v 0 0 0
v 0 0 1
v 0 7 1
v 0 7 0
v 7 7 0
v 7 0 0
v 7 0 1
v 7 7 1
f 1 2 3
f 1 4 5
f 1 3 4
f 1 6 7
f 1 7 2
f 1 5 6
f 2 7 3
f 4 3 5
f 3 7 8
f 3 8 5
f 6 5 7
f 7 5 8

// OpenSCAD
/* Warning, this is a very basic generator with a lot of approximation 
input data : [VQFN, SVB, 7x7x1mm, 64, , A, C04-21420A]
generated by com.zoubworld.electronics.cad.model3d.Basic
Date : Sun Feb 15 10:50:49 CET 2026
*/

//body
color("black")
translate([0,0,0])
cube([7.0,7.0,1.0], center=false);
